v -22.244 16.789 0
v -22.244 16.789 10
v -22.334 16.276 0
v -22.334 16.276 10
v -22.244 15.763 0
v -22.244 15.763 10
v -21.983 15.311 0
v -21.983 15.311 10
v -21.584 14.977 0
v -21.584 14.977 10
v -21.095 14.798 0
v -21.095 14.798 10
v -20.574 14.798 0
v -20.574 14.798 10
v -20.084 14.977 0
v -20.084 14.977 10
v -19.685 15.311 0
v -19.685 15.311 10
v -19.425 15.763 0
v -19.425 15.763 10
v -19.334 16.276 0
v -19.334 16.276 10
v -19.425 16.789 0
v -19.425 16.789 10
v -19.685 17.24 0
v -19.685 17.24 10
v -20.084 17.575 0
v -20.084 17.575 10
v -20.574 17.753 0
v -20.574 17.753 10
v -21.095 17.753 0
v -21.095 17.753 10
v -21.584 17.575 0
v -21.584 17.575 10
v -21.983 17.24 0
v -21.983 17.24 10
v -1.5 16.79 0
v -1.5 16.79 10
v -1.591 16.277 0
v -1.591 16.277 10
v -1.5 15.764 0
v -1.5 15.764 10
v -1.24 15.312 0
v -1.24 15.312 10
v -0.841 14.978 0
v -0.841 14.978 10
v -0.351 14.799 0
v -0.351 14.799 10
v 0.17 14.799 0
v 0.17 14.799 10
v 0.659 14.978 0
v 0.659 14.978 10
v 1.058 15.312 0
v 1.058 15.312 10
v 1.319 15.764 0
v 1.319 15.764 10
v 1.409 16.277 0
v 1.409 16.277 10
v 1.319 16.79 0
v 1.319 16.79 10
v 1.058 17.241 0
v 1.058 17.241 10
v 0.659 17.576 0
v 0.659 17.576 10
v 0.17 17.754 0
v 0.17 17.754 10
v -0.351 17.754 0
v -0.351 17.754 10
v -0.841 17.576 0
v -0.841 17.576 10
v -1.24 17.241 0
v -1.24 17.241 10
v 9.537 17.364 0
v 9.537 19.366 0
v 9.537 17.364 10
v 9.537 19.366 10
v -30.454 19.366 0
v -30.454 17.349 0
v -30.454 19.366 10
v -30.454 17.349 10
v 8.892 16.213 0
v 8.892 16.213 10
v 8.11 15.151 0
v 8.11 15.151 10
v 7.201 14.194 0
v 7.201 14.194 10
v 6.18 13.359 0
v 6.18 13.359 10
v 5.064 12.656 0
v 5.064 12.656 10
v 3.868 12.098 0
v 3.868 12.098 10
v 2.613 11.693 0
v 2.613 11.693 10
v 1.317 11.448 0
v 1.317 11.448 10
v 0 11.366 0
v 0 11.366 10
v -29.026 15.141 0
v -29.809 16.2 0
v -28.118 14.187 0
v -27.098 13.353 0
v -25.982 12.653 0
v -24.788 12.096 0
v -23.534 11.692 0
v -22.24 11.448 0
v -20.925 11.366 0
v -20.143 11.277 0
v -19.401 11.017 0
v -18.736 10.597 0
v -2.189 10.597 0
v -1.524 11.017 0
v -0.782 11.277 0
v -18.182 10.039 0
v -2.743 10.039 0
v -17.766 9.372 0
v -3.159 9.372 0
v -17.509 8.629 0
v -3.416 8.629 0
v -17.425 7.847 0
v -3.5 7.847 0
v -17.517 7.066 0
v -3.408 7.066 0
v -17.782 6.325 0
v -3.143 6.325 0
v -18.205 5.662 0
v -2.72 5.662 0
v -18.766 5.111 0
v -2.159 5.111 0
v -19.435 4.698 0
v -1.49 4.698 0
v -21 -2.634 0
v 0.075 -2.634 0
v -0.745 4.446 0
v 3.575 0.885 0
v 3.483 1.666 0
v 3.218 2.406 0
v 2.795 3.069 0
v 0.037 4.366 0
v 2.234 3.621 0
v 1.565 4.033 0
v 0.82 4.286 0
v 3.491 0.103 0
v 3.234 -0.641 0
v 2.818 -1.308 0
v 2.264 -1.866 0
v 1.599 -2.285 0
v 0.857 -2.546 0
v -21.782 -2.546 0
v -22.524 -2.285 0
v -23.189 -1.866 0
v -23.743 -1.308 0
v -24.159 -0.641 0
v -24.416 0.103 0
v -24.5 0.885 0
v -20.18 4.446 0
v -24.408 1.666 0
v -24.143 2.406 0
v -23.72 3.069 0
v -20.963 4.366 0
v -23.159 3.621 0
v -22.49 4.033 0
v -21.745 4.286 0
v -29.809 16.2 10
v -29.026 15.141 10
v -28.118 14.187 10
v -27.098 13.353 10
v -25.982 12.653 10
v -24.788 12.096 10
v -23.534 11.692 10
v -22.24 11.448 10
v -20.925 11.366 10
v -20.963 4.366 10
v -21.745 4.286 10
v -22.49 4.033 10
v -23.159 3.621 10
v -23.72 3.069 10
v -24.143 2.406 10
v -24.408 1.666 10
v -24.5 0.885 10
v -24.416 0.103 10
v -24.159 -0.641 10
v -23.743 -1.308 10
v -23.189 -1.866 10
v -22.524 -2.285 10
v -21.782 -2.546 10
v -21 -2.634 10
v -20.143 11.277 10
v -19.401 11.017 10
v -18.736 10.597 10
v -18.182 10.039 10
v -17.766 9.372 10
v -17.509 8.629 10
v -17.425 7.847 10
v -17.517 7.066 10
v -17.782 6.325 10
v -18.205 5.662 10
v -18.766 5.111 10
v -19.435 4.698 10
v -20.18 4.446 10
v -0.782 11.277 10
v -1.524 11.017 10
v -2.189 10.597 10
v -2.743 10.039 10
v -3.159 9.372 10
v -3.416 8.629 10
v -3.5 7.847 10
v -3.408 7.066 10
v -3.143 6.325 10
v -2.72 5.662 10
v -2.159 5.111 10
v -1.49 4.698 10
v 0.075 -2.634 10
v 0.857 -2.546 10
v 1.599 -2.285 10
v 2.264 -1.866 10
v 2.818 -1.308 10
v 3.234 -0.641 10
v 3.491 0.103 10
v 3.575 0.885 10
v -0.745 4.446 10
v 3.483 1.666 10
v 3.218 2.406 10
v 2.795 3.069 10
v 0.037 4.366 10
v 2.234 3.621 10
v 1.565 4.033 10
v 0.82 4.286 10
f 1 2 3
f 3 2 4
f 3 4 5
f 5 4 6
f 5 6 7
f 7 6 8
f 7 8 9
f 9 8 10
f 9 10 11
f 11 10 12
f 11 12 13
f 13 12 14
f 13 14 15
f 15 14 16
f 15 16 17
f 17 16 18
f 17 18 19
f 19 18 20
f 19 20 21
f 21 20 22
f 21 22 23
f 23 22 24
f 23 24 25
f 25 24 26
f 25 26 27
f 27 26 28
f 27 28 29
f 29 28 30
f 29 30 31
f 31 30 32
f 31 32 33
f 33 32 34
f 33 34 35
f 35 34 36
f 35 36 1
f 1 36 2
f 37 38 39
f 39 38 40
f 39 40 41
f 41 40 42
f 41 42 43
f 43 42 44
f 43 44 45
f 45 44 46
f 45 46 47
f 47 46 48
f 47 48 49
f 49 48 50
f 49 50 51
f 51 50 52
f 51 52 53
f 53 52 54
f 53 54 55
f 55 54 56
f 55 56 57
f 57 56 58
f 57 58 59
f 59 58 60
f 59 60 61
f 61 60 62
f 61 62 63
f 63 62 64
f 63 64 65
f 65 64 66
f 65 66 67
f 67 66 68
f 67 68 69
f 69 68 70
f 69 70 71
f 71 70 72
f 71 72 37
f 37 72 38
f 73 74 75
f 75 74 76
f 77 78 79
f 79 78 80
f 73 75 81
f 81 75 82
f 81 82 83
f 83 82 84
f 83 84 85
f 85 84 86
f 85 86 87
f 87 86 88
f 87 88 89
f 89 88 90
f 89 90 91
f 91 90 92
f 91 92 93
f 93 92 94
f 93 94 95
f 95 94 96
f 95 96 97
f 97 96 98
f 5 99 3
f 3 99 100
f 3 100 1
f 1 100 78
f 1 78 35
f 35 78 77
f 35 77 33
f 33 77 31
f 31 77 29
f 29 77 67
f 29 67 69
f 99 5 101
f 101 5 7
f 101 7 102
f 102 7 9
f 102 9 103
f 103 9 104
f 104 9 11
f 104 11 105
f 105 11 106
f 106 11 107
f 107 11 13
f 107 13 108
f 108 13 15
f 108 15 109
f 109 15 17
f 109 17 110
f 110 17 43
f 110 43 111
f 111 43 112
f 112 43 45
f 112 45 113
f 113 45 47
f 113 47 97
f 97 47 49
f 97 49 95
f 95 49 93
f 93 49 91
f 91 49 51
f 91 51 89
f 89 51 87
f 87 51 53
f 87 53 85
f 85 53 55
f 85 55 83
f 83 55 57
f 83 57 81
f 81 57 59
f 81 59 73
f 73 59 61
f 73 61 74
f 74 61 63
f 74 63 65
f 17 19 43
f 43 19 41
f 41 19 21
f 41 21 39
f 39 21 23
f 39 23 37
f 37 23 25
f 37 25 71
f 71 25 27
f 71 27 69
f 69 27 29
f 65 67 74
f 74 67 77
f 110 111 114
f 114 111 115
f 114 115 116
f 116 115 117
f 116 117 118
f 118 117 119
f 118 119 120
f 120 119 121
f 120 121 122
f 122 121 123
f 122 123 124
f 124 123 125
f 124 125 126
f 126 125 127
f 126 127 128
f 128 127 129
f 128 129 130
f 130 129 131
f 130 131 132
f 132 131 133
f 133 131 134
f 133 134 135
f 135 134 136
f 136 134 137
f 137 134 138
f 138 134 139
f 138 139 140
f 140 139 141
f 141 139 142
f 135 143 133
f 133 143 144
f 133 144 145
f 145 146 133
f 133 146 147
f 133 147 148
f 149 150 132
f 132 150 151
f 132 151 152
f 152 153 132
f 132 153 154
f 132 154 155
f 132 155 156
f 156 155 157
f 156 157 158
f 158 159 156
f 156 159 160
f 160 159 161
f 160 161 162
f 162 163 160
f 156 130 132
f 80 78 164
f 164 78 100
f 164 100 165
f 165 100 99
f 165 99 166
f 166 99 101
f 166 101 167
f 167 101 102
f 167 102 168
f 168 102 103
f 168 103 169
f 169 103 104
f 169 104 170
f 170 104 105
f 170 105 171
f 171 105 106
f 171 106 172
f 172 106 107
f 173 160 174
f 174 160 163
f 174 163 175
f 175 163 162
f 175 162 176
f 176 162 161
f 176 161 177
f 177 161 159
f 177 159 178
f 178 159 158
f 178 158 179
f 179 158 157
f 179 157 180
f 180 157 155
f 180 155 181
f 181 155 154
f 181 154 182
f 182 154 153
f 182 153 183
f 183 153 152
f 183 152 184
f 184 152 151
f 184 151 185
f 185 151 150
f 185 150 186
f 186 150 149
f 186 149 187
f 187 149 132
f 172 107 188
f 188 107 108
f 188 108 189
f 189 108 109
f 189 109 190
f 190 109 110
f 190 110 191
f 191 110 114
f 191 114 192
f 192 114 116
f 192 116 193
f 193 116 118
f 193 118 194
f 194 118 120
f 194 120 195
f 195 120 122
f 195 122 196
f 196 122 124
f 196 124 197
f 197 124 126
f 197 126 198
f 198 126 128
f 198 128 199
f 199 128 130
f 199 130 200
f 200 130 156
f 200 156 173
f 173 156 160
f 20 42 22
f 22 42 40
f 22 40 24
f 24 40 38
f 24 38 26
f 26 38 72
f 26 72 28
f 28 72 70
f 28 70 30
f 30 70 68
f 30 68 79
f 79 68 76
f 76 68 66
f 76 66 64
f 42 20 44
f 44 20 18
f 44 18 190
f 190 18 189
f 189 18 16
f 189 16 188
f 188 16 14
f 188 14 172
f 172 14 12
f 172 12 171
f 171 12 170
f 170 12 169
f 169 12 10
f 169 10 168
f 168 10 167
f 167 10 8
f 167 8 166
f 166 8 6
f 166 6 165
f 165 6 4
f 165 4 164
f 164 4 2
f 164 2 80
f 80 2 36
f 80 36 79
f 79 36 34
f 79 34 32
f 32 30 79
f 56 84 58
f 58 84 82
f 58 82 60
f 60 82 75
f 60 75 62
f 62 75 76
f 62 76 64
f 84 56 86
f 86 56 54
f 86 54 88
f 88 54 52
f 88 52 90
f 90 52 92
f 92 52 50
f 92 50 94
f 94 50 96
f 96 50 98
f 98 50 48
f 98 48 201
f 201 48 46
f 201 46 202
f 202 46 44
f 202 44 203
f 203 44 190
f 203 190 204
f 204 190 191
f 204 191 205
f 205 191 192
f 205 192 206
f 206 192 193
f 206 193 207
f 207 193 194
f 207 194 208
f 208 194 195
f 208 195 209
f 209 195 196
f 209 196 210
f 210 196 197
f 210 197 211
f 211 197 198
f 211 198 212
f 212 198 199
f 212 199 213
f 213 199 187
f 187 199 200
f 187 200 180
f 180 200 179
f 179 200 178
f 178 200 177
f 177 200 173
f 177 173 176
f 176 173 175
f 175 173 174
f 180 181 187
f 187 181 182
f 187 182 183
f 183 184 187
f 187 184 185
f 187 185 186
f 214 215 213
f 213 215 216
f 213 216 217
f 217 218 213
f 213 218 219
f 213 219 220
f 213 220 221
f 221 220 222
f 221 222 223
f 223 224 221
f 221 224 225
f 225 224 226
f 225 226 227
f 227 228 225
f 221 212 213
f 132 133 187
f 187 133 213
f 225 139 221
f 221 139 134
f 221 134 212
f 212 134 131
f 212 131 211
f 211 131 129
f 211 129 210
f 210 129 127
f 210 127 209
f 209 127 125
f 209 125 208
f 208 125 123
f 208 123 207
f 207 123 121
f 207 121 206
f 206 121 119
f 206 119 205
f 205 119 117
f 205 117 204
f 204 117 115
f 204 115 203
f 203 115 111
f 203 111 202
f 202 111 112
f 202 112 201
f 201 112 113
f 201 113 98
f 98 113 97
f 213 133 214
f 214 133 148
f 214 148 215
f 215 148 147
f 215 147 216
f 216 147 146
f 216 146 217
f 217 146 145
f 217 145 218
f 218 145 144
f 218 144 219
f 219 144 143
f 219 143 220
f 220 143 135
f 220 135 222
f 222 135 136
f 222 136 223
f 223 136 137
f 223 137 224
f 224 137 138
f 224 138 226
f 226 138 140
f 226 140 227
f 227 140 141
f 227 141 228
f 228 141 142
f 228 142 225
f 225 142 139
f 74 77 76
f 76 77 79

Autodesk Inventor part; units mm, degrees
ref_plane "YZ Plane" through (0, 0, 0) normal (1, 0, 0) x (0, 1, 0)
ref_plane "XZ Plane" through (0, 0, 0) normal (0, 1, 0) x (-1, 0, 0)
ref_plane "XY Plane" through (0, 0, 0) normal (0, 0, 1) x (1, 0, 0)
sketch "Sketch1" plane through (0, 0, 0) normal (0, 0, 1) x (1, 0, 0)
  line L0 (-10.4625, 19.3656) -> (31.5375, 19.3656)
  line L1 (31.5375, 19.3656) -> (31.5375, -2.6344)
  line L2 (31.5375, -2.6344) -> (-10.4625, -2.6344)
  line L3 (-10.4625, -2.6344) -> (-10.4625, 19.3656)
  point P0 (0, 0)
  dimension "d0" = 42
  dimension "d1" = 22
extrude "Extrusion1" add sketch "Sketch1" along normal blind 10
sketch "Sketch2" plane through (0, 0, 10) normal (0, 0, 1) x (1, 0, 0)
  line L0 (-10.4625, -2.6344) -> (31.5375, -2.6344) projected
  arc A0 (0.0751, -2.6344) -> (0.0375, 4.3656) centre (0.0751, 0.8657) ccw
  arc A1 (-0.0002, 11.3656) -> (0.0375, 4.3656) centre (-0.0002, 7.8655) ccw
  arc A2 (21.0375, 4.3656) -> (20.9998, -2.6344) centre (20.9998, 0.8657) ccw
  arc A3 (21.0375, 4.3656) -> (21.0751, 11.3656) centre (21.0751, 7.8655) ccw
  line L1 (-0.0002, 11.3656) -> (21.0751, 11.3656)
  line L2 (0.0751, 0.8657) -> (0.0375, 4.3656) construction
  line L3 (21.0751, 7.8655) -> (21.0375, 4.3656) construction
  line L4 (21.0375, 4.3656) -> (20.9998, 0.8657) construction
  line L5 (-10.4625, 19.3656) -> (-10.4625, -2.6344) projected
  line L6 (0.0375, 4.3656) -> (-0.0002, 7.8655) construction
  point P0 (0, 0)
  point P1 (10.5375, 11.3656)
  dimension "d4" = 21
  dimension "d5" = 21
  dimension "d6" = 14
extrude "Extrusion2" cut sketch "Sketch2" against normal through all
sketch "Sketch3" plane through (0, 0, 10) normal (0, 0, 1) x (1, 0, 0)
  line L0 (-0.0002, 11.3656) -> (21.0751, 11.3656) projected
  arc A0 (-0.0002, 11.3656) -> (9.5375, 17.3656) centre (-0.0002, 21.9462) ccw
  arc A1 (11.5375, 17.3656) -> (21.0751, 11.3656) centre (21.0751, 21.9462) ccw
  line L1 (9.5375, 17.3656) -> (11.5375, 17.3656)
  line L2 (31.5375, 19.3656) -> (-10.4625, 19.3656) projected
  arc A2 (21.0375, 4.3656) -> (21.0751, 11.3656) centre (21.0751, 7.8655) ccw projected
  line L3 (-0.0002, 11.3656) -> (21.0751, 11.3656)
  point P0 (0, 0)
  dimension "d9" = 2
  dimension "d10" = 2
extrude "Extrusion3" cut sketch "Sketch3" against normal through all
pattern_linear "Rectangular Pattern1" count 2 spacing 42 along (-1, 0, 0) of "Extrusion1", "Extrusion2", "Extrusion3"
sketch "Sketch4" plane through (0, 0, 10) normal (0, 0, 1) x (1, 0, 0)
  line L0 (31.5375, 19.3656) -> (-52.4625, 19.3656) projected
  line L1 (-30.4543, 19.3656) -> (-30.4543, -2.6344)
  line L2 (-52.4625, -2.6344) -> (-41.9249, -2.6344) projected
  line L3 (-30.4543, -2.6344) -> (-52.4625, -2.6344)
  line L4 (-52.4625, -2.6344) -> (-52.4625, 19.3656)
  line L5 (-52.4625, 19.3656) -> (-30.4543, 19.3656)
  line L6 (9.5367, 19.3656) -> (9.5367, -2.6344)
  line L7 (20.9998, -2.6344) -> (31.5375, -2.6344) projected
  line L8 (9.5367, -2.6344) -> (31.5375, -2.6344)
  line L9 (31.5375, -2.6344) -> (31.5375, 19.3656)
  line L10 (31.5375, 19.3656) -> (9.5367, 19.3656)
  point P0 (0, 0)
extrude "Extrusion4" cut sketch "Sketch4" against normal through all
sketch "Sketch5" plane through (0, 0, 10) normal (0, 0, 1) x (1, 0, 0)
  arc A0 (-20.9625, 4.3656) -> (-20.9249, 11.3656) centre (-20.9249, 7.8655) ccw projected
  line L0 (-20.9625, 4.3656) -> (-21.1286, -11.0791) construction
  arc A1 (-0.0002, 11.3656) -> (0.0375, 4.3656) centre (-0.0002, 7.8655) ccw construction
  line L1 (-20.9625, 4.3656) -> (-9.8965, 4.2466) construction
  line L2 (-20.9625, 4.3656) -> (-20.6751, 31.0931) construction
  arc A2 (0.0751, -2.6344) -> (0.0375, 4.3656) centre (0.0751, 0.8657) ccw projected
  arc A3 (-20.9625, 4.3656) -> (-21.0002, -2.6344) centre (-21.0002, 0.8657) ccw projected
  line L3 (9.5367, 19.3656) -> (-30.4543, 19.3656) construction
  line L4 (-10.4588, 19.3656) -> (-10.4625, -2.6344) construction
  line L5 (-21.0002, -2.6344) -> (0.0751, -2.6344) construction
  line L6 (0.0375, 4.3656) -> (-2.5475, 4.3378) construction
  line L7 (0.0375, 4.3656) -> (0.6415, 4.3721) construction
  line L8 (0.0375, 4.3656) -> (-0.1492, 21.7223) construction
  point P0 (0, 0)
  point P1 (-20.8344, 16.2756)
  point P2 (-0.0906, 16.2766)
hole "Hole1" at (-20.8344, 16.2756, 10) at (-0.0906, 16.2766, 10) direction (0, 0, -1) diameter 3 end through all
properties part number "Zipperteethv5"
